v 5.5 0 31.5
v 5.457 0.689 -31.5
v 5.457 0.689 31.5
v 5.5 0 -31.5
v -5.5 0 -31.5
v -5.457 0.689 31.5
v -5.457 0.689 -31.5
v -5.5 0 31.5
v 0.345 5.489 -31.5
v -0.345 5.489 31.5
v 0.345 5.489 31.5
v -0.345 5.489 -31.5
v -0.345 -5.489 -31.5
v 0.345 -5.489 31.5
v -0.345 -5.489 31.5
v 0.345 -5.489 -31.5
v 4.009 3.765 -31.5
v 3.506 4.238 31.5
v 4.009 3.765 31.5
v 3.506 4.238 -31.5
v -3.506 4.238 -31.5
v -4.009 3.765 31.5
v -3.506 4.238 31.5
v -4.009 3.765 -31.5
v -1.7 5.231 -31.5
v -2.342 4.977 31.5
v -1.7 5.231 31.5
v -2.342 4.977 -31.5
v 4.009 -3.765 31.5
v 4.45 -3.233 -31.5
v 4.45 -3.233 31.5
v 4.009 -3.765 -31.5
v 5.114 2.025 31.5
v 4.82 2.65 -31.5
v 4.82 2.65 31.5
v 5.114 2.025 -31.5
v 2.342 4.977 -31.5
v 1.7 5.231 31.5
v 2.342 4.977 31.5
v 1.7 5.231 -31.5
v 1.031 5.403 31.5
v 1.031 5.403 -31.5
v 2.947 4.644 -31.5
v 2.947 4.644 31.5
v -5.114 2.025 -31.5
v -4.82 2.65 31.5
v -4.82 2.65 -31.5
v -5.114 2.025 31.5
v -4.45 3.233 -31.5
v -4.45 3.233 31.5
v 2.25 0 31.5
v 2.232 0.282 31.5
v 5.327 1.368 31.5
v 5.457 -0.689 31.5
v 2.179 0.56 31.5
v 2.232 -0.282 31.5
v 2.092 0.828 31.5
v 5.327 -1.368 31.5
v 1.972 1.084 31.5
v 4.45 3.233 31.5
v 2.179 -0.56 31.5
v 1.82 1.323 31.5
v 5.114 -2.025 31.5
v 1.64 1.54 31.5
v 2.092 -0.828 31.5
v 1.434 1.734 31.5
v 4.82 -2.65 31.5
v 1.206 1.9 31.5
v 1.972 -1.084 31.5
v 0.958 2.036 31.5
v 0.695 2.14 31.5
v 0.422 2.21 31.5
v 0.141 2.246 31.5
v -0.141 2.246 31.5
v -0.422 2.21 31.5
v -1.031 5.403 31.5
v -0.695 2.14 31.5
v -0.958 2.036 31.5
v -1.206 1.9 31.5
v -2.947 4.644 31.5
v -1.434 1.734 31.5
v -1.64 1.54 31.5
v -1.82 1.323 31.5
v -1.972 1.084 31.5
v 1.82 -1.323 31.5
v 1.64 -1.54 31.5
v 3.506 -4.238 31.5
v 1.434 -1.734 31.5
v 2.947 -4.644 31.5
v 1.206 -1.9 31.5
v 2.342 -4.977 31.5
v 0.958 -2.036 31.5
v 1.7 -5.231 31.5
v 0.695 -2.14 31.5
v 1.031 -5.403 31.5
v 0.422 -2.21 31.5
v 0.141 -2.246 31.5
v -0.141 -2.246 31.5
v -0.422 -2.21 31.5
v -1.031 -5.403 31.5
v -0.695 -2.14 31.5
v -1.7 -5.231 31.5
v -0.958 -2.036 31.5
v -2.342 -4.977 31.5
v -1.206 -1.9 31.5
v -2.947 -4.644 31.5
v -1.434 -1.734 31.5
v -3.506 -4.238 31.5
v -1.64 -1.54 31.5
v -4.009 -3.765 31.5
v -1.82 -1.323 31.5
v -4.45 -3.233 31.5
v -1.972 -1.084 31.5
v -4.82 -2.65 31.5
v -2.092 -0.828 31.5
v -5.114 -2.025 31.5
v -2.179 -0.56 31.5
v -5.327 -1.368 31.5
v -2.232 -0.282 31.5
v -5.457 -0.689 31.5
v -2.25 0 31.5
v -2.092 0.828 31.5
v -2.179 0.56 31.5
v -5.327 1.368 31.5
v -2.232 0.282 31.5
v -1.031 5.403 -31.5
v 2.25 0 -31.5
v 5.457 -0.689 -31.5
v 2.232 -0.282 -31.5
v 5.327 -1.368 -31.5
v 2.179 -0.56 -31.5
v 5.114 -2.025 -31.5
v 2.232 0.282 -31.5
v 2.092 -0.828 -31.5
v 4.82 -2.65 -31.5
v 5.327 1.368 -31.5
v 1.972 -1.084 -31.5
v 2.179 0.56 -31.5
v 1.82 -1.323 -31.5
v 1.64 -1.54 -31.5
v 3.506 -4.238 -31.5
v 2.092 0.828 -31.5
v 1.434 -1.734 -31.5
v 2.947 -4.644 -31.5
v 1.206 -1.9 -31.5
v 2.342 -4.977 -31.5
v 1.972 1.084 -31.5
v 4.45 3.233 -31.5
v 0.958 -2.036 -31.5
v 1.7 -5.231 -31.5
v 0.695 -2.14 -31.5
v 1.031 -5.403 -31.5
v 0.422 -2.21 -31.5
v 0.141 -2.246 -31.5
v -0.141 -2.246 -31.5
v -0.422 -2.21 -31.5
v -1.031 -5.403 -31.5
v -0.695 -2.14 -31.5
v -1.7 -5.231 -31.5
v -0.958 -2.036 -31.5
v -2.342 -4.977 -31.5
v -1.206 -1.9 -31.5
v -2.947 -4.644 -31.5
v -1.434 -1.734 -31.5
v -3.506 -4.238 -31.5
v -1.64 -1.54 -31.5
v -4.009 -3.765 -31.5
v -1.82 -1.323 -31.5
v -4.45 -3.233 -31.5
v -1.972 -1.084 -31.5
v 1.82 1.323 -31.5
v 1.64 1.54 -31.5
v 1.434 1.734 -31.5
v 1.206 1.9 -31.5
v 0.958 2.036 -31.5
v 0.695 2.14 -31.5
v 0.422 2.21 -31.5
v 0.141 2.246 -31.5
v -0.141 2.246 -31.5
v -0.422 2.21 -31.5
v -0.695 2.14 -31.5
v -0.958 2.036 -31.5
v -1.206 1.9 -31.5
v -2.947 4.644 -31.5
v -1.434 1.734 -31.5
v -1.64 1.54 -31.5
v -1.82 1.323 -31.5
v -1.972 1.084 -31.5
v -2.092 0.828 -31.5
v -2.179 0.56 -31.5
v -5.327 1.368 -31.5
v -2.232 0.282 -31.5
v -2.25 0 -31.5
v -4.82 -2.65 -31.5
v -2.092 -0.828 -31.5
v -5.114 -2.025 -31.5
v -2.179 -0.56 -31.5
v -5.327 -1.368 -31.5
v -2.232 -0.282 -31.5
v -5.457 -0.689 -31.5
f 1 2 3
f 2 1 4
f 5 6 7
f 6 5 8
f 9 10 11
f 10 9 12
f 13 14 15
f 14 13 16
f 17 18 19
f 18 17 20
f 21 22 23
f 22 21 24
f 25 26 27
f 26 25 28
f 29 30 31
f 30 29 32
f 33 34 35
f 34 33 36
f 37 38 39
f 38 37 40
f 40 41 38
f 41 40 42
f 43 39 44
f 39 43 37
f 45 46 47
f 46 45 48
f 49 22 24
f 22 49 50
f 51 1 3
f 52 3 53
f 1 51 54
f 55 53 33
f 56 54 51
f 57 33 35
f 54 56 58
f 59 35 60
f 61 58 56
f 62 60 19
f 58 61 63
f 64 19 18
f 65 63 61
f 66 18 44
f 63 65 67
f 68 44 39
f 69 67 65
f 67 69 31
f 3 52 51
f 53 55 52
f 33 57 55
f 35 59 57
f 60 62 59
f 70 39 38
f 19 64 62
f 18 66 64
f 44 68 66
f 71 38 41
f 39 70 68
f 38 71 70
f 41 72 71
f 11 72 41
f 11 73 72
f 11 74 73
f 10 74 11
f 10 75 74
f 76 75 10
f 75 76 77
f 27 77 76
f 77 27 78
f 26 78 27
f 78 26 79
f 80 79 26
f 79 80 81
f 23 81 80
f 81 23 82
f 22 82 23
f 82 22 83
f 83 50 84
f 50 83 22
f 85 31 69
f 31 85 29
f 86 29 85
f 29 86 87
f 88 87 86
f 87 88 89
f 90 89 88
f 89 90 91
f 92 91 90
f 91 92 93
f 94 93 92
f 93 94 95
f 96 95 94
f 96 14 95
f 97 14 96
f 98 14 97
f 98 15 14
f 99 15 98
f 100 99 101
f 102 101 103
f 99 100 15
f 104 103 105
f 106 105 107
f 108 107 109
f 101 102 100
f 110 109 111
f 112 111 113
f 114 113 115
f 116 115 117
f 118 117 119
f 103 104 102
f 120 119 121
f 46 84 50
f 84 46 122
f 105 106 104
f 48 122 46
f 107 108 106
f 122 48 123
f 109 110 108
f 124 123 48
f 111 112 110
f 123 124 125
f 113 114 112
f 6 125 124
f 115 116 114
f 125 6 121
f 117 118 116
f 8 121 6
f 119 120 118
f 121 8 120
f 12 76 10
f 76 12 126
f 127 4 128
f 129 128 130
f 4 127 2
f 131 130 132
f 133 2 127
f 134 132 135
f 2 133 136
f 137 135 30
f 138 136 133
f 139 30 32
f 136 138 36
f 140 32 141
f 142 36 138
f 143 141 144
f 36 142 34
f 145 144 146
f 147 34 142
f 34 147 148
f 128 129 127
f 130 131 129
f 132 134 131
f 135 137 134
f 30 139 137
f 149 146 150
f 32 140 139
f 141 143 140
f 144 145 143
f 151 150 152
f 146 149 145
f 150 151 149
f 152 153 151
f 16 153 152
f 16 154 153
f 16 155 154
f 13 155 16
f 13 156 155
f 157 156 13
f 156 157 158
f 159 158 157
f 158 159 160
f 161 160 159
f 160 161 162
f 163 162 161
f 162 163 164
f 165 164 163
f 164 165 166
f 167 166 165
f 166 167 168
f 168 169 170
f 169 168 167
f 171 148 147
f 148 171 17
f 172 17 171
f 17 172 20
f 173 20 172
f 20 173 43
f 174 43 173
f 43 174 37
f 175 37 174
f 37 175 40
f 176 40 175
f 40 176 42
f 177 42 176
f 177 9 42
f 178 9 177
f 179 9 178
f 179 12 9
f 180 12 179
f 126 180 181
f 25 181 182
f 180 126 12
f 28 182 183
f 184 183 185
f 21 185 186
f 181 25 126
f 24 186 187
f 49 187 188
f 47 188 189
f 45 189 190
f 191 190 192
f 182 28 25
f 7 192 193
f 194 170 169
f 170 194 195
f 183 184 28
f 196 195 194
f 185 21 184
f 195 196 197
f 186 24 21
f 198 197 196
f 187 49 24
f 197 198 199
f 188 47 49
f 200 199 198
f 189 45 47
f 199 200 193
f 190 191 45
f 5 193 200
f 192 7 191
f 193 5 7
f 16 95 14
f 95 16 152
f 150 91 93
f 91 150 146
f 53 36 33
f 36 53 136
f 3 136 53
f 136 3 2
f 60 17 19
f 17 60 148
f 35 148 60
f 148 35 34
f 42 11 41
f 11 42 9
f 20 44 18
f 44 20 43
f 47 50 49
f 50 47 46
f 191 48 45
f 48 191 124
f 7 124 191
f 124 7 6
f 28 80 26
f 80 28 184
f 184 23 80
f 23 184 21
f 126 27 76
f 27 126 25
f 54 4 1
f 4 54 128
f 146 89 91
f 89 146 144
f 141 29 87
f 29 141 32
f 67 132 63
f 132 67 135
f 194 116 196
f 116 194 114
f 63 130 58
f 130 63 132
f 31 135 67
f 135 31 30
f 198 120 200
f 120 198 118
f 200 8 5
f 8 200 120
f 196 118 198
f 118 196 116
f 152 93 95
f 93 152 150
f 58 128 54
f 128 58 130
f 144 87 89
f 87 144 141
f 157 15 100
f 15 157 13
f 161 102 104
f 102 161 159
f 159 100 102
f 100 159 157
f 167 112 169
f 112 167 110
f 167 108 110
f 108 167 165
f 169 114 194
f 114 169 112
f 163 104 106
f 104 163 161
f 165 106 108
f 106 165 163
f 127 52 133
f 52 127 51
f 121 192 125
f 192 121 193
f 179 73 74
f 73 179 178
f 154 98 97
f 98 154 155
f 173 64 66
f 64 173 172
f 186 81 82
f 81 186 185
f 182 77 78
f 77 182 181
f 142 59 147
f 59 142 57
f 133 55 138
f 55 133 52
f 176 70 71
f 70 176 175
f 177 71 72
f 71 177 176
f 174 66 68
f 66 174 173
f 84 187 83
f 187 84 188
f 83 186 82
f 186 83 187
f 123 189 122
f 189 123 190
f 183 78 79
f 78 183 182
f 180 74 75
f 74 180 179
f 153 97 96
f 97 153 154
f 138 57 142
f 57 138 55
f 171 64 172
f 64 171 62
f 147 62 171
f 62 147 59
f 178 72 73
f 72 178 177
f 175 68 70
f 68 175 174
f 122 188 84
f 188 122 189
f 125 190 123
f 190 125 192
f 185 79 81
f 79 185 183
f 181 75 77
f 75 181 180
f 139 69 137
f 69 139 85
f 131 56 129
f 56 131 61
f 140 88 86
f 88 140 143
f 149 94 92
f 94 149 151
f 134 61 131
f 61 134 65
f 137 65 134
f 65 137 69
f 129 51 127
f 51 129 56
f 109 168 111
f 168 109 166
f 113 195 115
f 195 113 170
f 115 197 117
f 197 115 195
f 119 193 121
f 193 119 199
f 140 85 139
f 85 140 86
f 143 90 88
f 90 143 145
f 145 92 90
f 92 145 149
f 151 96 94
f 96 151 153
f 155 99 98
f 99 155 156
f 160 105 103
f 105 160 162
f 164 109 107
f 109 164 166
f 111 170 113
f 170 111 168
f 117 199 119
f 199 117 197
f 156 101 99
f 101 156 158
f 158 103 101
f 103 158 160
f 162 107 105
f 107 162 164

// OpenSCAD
$fn = 50;


difference() {
	union() {
		translate(v = [0, 0, -31.5000000000]) {
			cylinder(h = 63, r = 5.5000000000);
		}
	}
	union() {
		translate(v = [0, 0, -100.0000000000]) {
			cylinder(h = 200, r = 2.2500000000);
		}
	}
}
